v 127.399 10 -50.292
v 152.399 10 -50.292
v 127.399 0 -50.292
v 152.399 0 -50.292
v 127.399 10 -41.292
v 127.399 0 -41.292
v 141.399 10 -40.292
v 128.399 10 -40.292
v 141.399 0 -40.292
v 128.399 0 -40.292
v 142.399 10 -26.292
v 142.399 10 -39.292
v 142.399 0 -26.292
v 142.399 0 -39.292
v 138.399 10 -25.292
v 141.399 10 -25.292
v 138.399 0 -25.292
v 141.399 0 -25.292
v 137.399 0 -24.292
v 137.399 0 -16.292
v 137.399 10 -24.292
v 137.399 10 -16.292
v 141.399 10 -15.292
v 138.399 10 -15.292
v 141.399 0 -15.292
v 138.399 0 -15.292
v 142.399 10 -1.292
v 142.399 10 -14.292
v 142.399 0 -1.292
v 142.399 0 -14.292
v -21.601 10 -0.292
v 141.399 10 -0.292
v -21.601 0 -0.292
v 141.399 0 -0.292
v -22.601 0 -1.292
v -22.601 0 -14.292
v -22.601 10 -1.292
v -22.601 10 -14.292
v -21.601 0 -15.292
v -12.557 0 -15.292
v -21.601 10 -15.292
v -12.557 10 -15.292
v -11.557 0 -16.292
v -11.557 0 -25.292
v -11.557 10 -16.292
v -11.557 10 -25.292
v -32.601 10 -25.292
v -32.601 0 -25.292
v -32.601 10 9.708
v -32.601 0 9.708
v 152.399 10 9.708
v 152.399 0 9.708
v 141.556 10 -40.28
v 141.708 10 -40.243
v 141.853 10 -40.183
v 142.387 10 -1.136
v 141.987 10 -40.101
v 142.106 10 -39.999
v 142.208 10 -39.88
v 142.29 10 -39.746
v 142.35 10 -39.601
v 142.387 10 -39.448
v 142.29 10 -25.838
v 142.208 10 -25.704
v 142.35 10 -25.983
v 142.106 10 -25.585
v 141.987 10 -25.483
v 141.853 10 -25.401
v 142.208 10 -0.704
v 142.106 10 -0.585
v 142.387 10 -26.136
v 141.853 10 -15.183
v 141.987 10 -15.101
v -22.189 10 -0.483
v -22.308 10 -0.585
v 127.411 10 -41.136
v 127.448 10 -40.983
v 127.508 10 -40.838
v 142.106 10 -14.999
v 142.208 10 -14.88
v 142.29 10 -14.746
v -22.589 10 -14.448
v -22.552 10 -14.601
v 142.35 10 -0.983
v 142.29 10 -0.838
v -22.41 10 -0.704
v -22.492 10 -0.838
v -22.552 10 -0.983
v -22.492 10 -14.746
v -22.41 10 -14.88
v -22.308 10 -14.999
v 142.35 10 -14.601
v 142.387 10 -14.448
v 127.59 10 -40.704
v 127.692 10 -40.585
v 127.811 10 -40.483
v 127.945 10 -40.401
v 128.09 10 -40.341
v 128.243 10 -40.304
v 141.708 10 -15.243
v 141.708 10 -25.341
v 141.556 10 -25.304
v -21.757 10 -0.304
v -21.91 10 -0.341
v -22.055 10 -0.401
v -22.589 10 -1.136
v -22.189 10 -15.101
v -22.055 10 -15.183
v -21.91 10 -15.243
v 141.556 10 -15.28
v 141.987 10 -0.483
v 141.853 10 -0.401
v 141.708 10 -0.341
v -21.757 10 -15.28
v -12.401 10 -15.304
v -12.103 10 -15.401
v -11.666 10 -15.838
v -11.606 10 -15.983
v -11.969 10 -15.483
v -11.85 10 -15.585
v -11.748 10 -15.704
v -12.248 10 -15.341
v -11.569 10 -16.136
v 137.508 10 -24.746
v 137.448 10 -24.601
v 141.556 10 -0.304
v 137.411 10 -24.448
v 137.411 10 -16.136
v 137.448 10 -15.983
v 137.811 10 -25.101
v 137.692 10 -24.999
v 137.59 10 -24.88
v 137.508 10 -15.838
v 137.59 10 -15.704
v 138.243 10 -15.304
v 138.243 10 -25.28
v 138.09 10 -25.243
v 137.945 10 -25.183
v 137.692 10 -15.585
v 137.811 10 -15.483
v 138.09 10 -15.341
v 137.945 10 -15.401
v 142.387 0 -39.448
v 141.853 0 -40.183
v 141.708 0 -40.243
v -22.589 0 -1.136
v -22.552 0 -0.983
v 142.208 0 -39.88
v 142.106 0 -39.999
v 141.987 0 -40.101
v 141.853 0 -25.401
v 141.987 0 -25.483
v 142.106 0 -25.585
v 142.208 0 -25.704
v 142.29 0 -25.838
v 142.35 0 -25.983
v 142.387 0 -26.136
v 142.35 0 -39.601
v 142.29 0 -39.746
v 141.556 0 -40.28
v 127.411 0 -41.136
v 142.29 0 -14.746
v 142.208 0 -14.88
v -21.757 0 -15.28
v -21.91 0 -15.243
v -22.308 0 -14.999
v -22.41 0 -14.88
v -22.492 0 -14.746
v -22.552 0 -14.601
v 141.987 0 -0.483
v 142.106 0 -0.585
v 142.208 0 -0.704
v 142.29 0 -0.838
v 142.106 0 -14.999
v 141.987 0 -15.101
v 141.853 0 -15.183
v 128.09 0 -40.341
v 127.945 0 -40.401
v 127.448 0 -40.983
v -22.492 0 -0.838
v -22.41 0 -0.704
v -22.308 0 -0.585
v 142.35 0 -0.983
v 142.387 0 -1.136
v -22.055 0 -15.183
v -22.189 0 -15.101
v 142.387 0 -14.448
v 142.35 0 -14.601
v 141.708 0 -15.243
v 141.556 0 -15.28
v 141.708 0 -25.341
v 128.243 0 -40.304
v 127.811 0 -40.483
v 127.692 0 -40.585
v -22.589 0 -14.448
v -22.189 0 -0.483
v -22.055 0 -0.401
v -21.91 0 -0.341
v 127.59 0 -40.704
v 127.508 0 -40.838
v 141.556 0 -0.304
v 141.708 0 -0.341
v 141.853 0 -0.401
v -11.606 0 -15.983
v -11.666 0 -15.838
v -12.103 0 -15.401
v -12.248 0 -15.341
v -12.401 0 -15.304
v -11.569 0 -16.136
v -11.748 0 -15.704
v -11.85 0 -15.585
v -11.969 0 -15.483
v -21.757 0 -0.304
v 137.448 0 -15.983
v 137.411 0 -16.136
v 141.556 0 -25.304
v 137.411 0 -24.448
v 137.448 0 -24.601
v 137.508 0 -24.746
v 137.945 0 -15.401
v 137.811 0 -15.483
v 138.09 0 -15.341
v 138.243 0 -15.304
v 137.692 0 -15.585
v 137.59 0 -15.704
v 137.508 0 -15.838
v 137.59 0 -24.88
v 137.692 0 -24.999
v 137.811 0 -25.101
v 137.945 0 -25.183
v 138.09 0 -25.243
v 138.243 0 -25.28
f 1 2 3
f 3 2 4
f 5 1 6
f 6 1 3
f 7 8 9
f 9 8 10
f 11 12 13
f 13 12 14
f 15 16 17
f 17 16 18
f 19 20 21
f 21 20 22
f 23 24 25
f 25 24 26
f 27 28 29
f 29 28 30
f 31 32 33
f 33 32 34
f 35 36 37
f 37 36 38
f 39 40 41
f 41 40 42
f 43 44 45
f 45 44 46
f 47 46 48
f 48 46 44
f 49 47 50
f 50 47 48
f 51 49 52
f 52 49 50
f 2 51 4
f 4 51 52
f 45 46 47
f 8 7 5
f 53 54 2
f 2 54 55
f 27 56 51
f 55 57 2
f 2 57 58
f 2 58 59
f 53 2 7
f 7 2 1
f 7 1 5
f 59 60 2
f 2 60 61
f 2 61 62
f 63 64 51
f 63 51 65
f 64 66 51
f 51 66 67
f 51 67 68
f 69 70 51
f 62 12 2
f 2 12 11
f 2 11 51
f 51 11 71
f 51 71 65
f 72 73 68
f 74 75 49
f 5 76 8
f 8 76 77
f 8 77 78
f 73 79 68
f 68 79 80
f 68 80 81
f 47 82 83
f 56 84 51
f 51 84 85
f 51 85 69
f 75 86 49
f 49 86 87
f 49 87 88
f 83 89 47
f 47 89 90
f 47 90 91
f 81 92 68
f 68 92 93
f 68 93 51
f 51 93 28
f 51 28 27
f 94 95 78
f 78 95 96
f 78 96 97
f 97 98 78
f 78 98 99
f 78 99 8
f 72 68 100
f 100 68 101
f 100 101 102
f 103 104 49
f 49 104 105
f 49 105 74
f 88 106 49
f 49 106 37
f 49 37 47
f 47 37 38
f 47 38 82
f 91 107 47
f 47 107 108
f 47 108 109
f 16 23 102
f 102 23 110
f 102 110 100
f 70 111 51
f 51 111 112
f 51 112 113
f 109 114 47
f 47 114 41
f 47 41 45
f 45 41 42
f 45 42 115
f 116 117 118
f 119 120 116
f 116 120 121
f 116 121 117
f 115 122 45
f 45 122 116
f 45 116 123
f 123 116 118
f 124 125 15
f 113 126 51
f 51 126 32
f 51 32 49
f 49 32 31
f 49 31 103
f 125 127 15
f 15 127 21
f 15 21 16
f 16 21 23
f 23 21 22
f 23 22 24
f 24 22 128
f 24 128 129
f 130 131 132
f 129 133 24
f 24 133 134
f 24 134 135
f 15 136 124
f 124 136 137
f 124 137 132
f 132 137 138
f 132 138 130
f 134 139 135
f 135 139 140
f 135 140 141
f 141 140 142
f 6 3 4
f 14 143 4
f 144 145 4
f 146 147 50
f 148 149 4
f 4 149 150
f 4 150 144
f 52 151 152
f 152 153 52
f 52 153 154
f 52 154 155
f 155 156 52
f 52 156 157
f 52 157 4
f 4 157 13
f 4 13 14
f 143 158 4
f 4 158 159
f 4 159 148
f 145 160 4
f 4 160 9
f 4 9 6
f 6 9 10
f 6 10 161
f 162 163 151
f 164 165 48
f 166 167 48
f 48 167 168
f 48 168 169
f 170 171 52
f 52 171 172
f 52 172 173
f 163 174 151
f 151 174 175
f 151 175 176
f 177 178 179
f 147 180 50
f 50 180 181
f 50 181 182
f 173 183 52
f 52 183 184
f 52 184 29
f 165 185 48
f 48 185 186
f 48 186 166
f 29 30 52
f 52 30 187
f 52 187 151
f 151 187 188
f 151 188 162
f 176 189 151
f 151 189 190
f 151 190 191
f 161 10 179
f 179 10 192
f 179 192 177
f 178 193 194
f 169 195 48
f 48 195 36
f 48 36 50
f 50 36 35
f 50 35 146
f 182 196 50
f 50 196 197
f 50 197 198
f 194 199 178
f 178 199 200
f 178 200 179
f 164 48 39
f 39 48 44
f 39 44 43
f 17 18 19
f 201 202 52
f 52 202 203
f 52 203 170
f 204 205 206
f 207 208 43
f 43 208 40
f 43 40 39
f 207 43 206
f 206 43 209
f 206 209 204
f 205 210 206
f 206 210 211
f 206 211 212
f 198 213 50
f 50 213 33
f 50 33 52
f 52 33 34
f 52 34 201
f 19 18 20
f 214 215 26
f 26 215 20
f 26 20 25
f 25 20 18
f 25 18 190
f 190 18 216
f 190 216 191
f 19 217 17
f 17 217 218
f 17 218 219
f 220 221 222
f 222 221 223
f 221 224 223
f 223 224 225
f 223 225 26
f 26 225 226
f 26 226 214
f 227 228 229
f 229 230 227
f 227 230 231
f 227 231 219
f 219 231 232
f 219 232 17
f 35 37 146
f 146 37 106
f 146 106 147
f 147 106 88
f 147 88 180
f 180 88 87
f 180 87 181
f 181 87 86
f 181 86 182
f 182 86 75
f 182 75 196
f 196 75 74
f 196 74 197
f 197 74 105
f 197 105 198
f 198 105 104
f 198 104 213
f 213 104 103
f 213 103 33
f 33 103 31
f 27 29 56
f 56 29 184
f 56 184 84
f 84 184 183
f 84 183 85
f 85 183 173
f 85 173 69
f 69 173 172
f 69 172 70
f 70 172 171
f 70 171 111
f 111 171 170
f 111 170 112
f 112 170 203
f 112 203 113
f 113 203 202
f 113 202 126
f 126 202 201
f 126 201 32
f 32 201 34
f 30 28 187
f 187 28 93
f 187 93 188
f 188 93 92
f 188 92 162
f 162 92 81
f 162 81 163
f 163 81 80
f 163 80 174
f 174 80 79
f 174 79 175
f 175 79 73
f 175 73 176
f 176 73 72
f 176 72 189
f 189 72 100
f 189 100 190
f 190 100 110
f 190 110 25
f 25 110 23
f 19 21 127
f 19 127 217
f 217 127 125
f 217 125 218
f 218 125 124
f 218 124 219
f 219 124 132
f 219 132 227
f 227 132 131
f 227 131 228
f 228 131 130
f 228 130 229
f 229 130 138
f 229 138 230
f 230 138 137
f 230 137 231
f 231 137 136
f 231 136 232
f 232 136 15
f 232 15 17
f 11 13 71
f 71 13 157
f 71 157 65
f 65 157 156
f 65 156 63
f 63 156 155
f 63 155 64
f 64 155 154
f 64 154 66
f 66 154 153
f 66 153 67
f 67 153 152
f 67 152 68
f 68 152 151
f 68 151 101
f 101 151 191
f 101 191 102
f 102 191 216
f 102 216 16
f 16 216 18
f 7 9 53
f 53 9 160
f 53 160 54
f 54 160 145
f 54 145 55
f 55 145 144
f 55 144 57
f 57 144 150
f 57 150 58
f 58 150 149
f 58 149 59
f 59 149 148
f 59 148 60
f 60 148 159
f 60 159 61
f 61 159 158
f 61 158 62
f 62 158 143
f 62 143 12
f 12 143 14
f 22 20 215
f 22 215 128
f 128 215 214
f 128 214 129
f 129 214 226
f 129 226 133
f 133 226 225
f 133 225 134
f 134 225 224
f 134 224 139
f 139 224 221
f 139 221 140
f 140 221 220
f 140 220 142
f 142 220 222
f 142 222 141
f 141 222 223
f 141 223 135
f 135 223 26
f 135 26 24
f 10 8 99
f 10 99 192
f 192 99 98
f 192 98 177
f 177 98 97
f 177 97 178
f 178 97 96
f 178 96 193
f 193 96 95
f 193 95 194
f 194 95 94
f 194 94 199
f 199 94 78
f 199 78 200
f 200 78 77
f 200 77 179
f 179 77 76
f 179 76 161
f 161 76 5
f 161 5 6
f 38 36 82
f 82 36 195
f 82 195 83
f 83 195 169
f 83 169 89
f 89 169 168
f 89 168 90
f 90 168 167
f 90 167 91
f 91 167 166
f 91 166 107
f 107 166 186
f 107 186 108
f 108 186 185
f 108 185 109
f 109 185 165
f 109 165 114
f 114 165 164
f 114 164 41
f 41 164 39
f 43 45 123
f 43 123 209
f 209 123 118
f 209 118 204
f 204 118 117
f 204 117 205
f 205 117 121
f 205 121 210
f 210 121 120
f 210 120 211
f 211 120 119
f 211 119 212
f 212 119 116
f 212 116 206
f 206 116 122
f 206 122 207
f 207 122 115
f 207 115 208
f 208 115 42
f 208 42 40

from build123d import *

# Parameters (mm, degrees)
SKETCH1_W           = 5
SKETCH1_H           = 10
BOSS_EXTRUDE1_DEPTH = 10
FILLET3_R           = 1


with BuildPart() as part:
    # Sketch1 → Boss-Extrude1 (new body)
    with BuildSketch(Plane(origin=(0, 0, 0), x_dir=(1, 0, 0), z_dir=(0, 1, 0))):
        Polygon((142.399069508, 0.29194512), (-22.600930492, 0.29194512), (-22.600930492, 15.29194512), (-11.557039121, 15.29194512), (-11.557039121, 25.29194512), (-22.600930492, 25.29194512), (-32.600930492, 25.29194512), (-32.600930492, 12.072059565), (-32.600930492, 0.29194512), (-32.600930492, -9.70805488), (-14.486354187, -9.70805488), (12.890864677, -9.70805488), (152.399069508, -9.70805488), (152.399069508, 7.072059565), (152.399069508, 38.391958761), (152.399069508, 50.29194512), (142.399069508, 50.29194512), (127.399069508, 50.29194512), (127.399069508, 40.29194512), (142.399069508, 40.29194512), (142.399069508, 25.29194512), (142.399069508, 15.29194512), align=None)
        with Locations((139.899069508, 20.29194512)):
            Rectangle(SKETCH1_W, SKETCH1_H)
    extrude(amount=BOSS_EXTRUDE1_DEPTH)

    # Fillet3
    fillet3_edges = [part.edges().sort_by_distance(p)[0] for p in [
        (-11.557039121, 5, -15.29194512),
        (-22.600930492, 5, -15.29194512),
        (-22.600930492, 5, -0.29194512),
        (142.399069508, 5, -0.29194512),
        (142.399069508, 5, -15.29194512),
        (137.399069508, 5, -15.29194512),
        (137.399069508, 5, -25.29194512),
        (142.399069508, 5, -25.29194512),
        (142.399069508, 5, -40.29194512),
        (127.399069508, 5, -40.29194512),
    ]]
    fillet(fillet3_edges, radius=FILLET3_R)


solid = part.part
